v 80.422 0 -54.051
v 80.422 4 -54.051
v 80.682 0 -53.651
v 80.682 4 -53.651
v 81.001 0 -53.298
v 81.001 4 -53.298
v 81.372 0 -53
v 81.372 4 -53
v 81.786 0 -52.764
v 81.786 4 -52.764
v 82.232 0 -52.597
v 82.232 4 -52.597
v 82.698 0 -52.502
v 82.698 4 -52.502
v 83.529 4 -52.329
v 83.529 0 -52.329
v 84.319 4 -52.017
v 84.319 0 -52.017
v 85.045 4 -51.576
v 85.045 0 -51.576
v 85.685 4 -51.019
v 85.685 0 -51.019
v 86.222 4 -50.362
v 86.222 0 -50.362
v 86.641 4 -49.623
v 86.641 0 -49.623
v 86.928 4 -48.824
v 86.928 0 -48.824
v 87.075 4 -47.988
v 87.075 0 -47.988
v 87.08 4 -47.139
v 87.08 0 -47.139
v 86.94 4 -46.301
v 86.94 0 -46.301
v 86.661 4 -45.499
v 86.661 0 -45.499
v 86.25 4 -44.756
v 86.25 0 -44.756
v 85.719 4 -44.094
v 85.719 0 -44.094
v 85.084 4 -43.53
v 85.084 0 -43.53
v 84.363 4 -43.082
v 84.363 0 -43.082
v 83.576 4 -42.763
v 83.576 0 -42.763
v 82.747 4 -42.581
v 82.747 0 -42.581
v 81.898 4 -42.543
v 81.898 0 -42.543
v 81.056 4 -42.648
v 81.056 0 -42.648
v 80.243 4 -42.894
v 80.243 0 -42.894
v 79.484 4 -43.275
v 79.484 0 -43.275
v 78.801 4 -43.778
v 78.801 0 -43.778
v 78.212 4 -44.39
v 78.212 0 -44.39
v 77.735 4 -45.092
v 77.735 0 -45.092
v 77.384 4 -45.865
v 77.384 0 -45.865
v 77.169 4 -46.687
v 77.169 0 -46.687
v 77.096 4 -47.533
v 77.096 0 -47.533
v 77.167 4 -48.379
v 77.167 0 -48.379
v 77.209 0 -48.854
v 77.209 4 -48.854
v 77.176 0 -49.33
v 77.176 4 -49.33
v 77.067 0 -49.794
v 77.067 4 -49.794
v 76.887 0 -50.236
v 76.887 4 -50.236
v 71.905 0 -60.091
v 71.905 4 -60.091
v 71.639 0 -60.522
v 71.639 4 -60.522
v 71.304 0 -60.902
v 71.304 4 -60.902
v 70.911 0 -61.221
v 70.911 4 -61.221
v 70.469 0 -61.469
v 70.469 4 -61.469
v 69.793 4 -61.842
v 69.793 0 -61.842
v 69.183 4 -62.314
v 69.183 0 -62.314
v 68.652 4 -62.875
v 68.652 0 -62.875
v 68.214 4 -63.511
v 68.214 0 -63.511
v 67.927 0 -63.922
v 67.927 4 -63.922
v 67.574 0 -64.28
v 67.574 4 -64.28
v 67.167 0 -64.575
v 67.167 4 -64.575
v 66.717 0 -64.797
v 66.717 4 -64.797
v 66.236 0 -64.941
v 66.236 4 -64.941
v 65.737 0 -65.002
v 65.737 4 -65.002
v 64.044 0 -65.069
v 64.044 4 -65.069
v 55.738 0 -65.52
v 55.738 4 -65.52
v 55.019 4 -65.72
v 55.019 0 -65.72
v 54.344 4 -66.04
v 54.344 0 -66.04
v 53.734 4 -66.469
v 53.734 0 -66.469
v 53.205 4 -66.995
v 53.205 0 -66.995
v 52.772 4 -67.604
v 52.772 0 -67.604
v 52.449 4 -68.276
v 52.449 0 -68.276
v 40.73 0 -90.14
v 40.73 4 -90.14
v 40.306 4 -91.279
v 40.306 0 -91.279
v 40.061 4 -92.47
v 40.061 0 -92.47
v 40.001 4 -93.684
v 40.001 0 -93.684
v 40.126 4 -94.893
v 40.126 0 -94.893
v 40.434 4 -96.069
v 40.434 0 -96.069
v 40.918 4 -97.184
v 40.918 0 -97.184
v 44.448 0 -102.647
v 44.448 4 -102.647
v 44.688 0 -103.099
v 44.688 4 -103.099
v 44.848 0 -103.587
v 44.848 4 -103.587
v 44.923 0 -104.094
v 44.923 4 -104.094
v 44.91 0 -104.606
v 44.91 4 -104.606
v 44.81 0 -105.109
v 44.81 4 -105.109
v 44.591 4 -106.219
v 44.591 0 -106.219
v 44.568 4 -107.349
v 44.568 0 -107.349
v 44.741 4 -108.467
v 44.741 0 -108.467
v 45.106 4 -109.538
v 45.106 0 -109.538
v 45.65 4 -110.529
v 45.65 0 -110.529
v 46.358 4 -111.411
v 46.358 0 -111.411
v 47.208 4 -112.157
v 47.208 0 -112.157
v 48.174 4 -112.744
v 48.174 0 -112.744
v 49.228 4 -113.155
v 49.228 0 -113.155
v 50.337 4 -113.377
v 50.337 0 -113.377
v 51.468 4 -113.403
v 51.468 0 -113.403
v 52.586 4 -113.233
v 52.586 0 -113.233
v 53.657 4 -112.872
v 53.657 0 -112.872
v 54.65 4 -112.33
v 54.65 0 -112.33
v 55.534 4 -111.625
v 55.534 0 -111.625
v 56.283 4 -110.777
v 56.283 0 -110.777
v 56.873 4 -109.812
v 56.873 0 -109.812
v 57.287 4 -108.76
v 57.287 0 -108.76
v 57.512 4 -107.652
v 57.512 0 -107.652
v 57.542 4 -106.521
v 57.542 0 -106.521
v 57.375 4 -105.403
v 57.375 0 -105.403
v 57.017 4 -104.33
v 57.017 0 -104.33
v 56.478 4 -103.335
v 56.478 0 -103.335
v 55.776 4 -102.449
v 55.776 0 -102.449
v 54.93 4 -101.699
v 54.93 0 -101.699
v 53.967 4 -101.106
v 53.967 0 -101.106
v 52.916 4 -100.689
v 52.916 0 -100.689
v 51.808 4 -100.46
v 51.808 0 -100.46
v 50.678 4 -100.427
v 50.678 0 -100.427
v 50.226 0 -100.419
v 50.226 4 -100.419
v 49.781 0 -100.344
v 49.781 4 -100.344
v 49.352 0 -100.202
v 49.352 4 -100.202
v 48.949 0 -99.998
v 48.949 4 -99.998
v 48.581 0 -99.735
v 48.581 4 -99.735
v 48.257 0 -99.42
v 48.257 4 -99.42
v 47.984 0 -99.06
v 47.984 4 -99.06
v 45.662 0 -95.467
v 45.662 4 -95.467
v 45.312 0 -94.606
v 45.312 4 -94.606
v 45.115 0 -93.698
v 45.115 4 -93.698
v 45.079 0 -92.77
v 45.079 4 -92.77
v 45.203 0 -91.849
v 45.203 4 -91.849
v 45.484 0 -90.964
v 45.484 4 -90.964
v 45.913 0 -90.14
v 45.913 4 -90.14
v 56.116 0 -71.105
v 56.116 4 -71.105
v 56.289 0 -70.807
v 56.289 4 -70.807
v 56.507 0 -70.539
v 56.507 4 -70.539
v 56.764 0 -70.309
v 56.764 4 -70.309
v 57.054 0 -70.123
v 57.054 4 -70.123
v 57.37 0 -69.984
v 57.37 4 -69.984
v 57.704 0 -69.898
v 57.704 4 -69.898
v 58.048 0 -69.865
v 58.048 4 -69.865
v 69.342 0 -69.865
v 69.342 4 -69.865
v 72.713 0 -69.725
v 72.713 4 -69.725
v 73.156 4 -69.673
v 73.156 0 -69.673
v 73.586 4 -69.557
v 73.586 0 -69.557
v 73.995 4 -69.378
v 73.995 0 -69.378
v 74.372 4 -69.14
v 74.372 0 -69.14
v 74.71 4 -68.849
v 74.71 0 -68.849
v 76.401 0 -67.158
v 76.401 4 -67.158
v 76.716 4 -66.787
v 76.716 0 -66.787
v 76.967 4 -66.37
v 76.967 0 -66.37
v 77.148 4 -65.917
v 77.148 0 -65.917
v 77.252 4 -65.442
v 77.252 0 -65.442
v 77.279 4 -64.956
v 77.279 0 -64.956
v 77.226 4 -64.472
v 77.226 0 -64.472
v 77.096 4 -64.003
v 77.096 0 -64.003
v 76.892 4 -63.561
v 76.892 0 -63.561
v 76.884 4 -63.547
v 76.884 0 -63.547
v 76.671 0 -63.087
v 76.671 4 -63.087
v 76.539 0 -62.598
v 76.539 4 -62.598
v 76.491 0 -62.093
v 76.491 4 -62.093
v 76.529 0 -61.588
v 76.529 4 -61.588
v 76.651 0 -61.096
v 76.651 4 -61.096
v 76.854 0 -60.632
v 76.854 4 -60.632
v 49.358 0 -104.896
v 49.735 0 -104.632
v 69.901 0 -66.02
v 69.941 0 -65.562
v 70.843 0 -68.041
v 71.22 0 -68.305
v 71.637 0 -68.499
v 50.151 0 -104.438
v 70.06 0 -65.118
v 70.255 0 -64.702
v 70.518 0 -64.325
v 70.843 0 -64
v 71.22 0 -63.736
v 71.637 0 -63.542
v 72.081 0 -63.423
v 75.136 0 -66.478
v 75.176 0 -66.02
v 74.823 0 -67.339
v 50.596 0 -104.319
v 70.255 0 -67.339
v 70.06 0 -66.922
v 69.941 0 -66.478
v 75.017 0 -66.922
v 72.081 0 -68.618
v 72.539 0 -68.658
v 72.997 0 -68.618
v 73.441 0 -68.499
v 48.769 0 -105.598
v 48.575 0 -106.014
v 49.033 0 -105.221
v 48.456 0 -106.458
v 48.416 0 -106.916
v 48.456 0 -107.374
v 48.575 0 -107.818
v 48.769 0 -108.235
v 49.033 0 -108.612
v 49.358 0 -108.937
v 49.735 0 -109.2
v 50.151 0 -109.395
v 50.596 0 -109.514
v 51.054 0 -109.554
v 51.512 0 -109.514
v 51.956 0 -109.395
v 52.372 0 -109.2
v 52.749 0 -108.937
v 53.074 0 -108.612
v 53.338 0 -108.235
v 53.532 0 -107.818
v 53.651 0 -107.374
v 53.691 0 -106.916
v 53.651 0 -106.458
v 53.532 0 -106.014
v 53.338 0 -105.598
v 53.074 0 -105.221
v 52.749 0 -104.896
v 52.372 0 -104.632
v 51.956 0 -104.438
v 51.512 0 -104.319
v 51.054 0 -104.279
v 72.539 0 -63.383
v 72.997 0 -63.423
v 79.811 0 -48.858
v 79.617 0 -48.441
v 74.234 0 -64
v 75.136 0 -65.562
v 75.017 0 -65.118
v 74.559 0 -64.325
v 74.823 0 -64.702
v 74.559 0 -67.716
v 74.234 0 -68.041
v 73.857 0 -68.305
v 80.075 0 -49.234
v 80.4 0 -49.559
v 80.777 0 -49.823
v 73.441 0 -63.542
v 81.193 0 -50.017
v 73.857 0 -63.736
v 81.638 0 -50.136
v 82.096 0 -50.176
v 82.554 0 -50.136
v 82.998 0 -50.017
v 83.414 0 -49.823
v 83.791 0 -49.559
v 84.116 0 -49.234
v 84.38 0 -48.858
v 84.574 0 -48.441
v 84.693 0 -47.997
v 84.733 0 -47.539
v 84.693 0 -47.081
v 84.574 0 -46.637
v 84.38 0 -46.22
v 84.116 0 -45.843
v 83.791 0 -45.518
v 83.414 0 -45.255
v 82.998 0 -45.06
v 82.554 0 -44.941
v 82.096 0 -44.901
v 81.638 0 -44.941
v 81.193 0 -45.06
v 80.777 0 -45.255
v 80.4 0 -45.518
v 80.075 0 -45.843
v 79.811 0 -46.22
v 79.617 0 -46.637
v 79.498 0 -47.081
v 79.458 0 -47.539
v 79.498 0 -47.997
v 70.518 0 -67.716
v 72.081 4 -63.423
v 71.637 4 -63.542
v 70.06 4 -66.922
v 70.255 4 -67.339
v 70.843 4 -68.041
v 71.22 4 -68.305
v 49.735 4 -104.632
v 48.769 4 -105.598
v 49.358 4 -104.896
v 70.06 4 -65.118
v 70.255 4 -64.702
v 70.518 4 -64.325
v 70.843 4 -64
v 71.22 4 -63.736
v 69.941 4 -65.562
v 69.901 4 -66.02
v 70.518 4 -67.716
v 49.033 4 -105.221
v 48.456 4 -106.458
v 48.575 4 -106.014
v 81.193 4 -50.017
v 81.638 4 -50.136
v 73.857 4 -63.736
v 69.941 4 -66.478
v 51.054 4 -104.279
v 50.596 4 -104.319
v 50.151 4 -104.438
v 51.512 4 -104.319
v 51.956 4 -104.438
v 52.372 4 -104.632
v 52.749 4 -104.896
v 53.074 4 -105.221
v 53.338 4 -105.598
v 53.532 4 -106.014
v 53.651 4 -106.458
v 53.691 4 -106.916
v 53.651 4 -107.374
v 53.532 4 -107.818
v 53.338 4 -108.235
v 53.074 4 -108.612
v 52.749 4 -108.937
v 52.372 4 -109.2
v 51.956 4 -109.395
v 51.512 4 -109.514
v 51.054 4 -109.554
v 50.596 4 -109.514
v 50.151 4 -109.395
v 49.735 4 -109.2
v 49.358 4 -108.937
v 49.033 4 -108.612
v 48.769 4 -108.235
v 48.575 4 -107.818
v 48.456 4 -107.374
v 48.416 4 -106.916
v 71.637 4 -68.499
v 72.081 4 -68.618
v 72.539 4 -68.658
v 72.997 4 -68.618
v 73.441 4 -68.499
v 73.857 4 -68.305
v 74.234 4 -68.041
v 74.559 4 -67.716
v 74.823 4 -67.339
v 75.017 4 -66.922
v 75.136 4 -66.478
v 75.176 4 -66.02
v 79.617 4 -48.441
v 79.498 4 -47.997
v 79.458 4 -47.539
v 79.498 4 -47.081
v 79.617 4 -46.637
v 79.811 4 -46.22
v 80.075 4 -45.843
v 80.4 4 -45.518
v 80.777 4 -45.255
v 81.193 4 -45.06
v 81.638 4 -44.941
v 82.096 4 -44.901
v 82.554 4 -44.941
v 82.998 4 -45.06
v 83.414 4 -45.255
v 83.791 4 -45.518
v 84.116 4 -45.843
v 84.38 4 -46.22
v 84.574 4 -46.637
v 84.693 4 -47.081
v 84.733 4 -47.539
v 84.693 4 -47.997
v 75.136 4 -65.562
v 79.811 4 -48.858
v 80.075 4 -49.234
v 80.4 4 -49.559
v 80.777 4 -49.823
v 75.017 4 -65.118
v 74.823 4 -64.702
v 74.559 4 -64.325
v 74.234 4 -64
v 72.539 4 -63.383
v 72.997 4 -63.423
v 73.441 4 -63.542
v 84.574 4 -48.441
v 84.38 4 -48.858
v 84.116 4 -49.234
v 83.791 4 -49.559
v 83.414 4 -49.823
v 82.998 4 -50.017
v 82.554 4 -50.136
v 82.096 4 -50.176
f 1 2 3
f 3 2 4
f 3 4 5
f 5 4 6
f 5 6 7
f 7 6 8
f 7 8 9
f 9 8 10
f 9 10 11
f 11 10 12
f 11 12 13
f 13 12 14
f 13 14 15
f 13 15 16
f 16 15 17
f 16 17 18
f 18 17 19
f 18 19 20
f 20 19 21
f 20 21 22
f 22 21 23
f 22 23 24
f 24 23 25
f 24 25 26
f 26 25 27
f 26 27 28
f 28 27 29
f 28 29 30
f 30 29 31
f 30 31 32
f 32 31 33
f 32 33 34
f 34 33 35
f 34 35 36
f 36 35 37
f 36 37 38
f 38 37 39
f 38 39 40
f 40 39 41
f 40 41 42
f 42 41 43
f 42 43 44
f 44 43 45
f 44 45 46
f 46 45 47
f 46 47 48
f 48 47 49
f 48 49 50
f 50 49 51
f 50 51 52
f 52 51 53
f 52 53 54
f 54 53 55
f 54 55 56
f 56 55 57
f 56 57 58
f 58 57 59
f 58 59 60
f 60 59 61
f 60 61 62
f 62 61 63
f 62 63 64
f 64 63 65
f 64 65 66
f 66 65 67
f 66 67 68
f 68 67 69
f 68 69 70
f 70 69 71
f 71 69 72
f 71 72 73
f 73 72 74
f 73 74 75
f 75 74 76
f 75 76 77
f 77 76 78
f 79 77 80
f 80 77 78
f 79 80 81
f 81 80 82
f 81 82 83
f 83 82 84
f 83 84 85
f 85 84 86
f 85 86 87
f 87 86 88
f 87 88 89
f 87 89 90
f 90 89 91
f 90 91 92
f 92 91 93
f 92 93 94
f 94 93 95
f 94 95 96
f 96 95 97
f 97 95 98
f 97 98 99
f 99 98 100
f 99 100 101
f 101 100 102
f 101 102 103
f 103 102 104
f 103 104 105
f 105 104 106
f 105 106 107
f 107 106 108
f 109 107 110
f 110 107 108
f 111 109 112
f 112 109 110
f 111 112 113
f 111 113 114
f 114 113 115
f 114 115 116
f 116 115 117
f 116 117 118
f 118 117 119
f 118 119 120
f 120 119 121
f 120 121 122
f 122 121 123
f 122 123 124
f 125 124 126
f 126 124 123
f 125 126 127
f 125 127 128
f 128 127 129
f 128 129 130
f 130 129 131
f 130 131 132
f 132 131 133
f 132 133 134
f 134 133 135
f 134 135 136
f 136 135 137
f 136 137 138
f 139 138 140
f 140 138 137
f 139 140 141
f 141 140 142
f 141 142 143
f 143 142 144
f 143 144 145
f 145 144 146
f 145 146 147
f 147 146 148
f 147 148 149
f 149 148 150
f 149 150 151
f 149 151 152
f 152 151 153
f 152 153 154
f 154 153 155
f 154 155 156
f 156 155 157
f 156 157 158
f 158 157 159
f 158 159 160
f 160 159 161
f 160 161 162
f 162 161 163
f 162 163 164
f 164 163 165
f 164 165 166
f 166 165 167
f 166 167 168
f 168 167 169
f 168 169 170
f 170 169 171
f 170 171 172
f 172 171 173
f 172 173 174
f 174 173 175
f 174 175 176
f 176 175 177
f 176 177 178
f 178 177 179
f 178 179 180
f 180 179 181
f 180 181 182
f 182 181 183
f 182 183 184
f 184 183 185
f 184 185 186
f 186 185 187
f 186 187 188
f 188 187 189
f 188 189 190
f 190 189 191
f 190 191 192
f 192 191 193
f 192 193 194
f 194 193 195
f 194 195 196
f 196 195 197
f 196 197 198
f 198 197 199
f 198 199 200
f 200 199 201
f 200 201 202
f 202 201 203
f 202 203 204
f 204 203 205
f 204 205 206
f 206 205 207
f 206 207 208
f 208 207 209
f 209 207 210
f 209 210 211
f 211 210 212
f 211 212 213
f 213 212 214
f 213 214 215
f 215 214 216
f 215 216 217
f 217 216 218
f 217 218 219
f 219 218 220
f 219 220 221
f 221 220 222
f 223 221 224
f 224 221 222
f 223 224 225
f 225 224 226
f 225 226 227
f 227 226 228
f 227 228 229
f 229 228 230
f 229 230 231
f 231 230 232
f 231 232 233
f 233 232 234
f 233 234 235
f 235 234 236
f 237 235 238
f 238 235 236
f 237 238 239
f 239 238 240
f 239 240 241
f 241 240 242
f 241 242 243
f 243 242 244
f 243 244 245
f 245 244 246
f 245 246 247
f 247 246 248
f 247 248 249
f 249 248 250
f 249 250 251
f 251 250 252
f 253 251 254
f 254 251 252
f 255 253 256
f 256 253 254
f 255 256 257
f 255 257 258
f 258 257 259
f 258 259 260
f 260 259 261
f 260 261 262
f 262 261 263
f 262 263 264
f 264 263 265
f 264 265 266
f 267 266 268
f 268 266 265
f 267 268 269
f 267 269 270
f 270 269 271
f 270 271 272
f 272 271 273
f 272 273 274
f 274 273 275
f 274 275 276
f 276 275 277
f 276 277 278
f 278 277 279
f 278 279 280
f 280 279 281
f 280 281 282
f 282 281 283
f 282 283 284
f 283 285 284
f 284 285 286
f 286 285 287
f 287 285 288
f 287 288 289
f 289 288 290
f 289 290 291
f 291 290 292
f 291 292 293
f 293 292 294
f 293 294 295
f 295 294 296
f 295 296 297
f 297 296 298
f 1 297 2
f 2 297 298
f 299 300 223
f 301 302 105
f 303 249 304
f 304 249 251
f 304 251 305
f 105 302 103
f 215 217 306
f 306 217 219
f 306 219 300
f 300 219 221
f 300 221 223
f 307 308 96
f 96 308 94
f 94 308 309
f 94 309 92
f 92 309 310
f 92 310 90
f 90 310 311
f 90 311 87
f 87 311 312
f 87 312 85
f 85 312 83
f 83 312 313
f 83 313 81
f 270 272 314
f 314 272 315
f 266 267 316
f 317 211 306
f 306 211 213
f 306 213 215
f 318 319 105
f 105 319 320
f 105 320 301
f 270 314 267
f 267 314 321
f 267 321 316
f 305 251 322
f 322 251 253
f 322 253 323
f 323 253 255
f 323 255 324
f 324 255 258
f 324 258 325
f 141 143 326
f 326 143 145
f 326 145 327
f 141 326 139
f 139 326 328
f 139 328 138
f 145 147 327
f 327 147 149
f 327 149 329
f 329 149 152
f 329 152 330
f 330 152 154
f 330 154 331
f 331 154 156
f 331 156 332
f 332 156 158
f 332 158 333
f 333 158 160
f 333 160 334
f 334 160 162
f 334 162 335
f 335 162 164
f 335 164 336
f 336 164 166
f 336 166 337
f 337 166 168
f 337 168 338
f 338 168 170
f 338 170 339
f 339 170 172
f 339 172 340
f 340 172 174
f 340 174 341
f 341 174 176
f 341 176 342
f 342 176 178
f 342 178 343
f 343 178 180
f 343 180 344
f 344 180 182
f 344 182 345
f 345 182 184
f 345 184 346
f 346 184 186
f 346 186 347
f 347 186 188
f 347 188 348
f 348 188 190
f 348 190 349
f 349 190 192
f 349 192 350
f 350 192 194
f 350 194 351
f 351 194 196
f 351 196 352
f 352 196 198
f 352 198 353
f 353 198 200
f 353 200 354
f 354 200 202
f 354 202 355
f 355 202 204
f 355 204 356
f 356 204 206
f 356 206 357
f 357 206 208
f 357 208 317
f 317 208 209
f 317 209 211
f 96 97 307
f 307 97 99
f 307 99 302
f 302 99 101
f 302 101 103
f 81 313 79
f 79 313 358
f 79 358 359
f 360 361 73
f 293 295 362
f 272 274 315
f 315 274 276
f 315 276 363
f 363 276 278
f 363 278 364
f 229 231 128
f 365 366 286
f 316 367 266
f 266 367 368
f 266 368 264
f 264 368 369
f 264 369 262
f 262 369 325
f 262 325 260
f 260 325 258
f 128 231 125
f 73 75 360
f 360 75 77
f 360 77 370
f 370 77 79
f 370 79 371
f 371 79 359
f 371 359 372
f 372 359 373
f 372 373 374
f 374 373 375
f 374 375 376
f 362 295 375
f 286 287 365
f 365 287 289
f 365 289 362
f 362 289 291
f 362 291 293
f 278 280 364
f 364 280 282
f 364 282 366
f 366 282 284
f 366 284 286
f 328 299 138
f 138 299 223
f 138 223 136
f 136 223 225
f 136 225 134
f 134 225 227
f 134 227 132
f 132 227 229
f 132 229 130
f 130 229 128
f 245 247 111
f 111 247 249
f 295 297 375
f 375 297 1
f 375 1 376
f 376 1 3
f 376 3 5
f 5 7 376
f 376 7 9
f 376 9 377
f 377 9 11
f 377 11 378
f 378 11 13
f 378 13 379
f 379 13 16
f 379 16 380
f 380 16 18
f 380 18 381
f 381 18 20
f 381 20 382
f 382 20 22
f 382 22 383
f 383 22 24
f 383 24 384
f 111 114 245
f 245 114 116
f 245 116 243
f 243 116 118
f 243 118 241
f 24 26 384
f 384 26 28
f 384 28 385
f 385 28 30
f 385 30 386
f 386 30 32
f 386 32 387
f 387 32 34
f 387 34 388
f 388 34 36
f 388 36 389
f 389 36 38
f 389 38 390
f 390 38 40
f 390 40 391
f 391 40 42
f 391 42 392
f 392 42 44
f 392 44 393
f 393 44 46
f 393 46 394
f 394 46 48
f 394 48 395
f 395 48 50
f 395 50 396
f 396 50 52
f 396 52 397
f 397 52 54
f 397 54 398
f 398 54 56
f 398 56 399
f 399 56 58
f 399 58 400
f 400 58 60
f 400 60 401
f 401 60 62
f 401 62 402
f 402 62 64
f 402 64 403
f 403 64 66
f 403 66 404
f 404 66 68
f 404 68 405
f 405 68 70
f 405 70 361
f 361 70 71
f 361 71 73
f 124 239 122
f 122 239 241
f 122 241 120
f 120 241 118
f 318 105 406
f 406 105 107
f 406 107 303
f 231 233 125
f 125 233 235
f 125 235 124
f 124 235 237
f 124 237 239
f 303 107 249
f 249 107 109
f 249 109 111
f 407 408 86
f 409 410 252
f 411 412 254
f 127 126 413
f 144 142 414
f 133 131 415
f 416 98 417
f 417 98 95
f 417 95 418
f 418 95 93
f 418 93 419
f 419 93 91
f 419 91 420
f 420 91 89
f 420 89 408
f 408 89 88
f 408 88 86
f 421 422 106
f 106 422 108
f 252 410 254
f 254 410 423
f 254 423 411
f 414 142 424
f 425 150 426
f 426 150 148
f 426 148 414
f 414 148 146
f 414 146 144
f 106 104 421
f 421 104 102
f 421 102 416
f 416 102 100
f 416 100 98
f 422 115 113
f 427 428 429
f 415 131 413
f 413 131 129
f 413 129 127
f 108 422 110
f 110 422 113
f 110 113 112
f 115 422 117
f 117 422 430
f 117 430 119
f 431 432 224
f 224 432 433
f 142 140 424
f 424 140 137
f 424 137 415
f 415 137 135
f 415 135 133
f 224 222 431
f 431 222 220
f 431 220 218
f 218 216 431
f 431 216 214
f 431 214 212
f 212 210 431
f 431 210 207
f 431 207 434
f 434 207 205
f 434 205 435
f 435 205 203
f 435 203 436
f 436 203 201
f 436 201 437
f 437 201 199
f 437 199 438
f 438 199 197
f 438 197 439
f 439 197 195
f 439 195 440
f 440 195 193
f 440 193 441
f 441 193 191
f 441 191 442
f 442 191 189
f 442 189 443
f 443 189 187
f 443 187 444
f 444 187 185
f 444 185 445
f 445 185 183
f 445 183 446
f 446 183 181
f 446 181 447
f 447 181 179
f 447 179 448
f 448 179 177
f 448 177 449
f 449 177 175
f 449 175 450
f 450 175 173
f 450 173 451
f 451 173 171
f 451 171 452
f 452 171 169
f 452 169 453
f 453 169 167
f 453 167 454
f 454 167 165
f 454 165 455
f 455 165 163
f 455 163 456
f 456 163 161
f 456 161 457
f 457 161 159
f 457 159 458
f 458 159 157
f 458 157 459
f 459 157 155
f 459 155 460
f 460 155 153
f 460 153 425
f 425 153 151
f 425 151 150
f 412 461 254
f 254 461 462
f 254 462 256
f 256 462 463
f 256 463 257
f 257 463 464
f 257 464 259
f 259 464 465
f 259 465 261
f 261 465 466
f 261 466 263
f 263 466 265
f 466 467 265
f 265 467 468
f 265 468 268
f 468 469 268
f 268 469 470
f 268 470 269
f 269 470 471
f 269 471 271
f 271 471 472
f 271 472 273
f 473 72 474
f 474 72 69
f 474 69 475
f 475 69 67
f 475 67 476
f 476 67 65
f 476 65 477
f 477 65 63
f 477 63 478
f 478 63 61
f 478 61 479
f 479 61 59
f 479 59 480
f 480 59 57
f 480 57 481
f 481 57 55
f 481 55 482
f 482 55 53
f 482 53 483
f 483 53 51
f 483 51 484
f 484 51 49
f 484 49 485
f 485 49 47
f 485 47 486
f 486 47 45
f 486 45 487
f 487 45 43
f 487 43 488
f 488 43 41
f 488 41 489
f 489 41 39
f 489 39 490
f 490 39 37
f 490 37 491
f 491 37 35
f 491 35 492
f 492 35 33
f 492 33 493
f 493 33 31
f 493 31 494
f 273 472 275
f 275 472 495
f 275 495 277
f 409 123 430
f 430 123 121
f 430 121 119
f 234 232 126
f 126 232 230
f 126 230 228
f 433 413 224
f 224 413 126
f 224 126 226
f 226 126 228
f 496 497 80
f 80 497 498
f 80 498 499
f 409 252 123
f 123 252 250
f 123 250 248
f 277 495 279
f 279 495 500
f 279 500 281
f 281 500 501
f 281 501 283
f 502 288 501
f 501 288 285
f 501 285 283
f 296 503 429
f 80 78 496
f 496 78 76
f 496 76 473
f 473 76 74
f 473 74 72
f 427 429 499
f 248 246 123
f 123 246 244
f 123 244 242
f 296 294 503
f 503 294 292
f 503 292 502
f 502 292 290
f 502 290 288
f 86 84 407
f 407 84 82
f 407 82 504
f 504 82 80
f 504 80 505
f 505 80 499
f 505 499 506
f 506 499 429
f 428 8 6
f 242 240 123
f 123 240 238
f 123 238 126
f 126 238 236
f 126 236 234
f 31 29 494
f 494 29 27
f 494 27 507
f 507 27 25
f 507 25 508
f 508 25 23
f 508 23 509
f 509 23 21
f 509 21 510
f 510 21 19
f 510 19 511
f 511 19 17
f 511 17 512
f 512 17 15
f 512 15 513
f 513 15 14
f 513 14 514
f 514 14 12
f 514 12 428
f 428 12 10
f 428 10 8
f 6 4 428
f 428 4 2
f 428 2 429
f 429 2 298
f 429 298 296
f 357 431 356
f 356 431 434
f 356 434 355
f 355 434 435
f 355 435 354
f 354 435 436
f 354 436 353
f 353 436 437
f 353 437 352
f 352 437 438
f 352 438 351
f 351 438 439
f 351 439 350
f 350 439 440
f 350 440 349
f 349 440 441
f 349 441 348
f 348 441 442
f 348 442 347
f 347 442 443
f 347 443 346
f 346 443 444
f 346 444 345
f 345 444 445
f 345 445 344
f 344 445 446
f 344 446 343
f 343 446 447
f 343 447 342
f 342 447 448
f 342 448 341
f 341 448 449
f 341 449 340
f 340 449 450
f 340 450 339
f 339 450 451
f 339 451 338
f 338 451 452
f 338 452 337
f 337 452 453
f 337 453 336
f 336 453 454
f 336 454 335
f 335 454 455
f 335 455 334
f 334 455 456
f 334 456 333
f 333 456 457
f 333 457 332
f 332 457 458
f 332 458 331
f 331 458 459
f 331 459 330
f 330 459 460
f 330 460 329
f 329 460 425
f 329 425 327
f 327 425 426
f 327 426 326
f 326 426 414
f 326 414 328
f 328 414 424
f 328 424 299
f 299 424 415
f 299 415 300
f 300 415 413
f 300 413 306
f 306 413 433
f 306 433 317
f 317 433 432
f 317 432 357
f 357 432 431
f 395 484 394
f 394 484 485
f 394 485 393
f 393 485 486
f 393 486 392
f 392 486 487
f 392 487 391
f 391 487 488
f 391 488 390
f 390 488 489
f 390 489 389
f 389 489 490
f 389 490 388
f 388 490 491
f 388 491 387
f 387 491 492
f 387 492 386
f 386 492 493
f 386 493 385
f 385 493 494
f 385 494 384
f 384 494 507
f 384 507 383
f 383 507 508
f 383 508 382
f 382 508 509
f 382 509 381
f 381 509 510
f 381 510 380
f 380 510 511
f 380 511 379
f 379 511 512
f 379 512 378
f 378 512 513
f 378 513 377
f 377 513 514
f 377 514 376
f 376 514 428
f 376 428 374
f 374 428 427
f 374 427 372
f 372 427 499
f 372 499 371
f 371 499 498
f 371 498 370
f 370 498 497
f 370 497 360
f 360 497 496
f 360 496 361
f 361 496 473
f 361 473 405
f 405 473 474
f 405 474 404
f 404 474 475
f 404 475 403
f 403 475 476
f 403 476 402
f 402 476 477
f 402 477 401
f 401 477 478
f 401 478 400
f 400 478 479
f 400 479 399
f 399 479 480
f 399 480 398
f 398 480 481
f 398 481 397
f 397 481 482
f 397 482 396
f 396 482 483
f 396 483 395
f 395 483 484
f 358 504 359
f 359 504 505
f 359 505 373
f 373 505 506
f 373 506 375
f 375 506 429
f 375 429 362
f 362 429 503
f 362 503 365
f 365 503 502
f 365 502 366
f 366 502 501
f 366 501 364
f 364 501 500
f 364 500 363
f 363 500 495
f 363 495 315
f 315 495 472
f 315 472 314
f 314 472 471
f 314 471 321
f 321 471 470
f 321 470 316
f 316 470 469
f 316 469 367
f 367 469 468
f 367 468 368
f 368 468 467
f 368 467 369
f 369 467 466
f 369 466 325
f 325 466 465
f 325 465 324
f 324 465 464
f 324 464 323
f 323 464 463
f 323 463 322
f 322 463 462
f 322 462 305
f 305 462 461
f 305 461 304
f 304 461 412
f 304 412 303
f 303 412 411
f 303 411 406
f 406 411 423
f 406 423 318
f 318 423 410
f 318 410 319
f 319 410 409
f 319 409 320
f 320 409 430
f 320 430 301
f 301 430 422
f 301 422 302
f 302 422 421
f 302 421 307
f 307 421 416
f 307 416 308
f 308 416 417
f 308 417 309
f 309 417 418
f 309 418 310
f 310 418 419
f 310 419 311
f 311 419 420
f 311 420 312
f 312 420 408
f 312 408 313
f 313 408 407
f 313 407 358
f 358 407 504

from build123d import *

# Parameters (mm, degrees)
SKETCH1_R           = 2.6375
BOSS_EXTRUDE1_DEPTH = 4


with BuildPart() as part:
    # Sketch1 → Boss-Extrude1 (new body)
    with BuildSketch(Plane(origin=(0, 4, 0), x_dir=(1, 0, 0), z_dir=(0, 1, 0))):
        with BuildLine():
            Line((80.422342857, 54.050517259), (76.853623233, 60.632336961))
            ThreePointArc((76.853623233, 60.632336961), (76.491061204, 62.093363418), (76.883808504, 63.546566463))
            ThreePointArc((76.883808504, 63.546566463), (76.887801931, 63.553594024), (76.891783993, 63.560628031))
            ThreePointArc((76.891783993, 63.560628031), (77.252393533, 65.441834253), (76.401227258, 67.157786484))
            Line((76.401227258, 67.157786484), (74.710106586, 68.848907157))
            ThreePointArc((74.710106586, 68.848907157), (73.793959033, 69.474868842), (72.712949954, 69.725016274))
            Line((72.712949954, 69.725016274), (69.341583584, 69.864669723))
            Line((69.341583584, 69.864669723), (58.04793187, 69.864669723))
            ThreePointArc((58.04793187, 69.864669723), (56.905384642, 70.210123831), (56.115987655, 71.105447853))
            Line((56.115987655, 71.105447853), (45.913475043, 90.139986308))
            ThreePointArc((45.913475043, 90.139986308), (45.078544808, 92.769966676), (45.661998303, 95.466907026))
            Line((45.661998303, 95.466907026), (47.984386737, 99.06049755))
            ThreePointArc((47.984386737, 99.06049755), (49.146460916, 100.107430356), (50.677561656, 100.427141511))
            ThreePointArc((50.677561656, 100.427141511), (55.107636105, 111.997063252), (44.809847991, 105.109087593))
            ThreePointArc((44.809847991, 105.109087593), (44.89620964, 103.838561027), (44.447757125, 102.646677462))
            Line((44.447757125, 102.646677462), (40.917682236, 97.184351056))
            ThreePointArc((40.917682236, 97.184351056), (40.000914232, 93.684113367), (40.729811239, 90.139986308))
            Line((40.729811239, 90.139986308), (52.448751423, 68.276291936))
            ThreePointArc((52.448751423, 68.276291936), (53.733769558, 66.46917356), (55.737555004, 65.519546097))
            Line((55.737555004, 65.519546097), (64.043852088, 65.068697747))
            Line((64.043852088, 65.068697747), (65.737001521, 65.002354827))
            ThreePointArc((65.737001521, 65.002354827), (67.167212394, 64.574619561), (68.214209712, 63.510543803))
            ThreePointArc((68.214209712, 63.510543803), (69.182612076, 62.314016036), (70.4690978, 61.468772687))
            ThreePointArc((70.4690978, 61.468772687), (71.304443417, 60.902477838), (71.904734595, 60.091217919))
            Line((71.904734595, 60.091217919), (76.886572185, 50.235843556))
            ThreePointArc((76.886572185, 50.235843556), (77.175676431, 49.329685255), (77.166582589, 48.378569367))
            ThreePointArc((77.166582589, 48.378569367), (85.084005766, 43.530139369), (82.698094563, 52.502334805))
            ThreePointArc((82.698094563, 52.502334805), (81.37218956, 53.000032473), (80.422342857, 54.050517259))
        make_face()
        with Locations((51.053576092, 106.916256485)):
            Circle(SKETCH1_R, mode=Mode.SUBTRACT)
        with Locations((82.095552315, 47.538773298)):
            Circle(SKETCH1_R, mode=Mode.SUBTRACT)
        with Locations((72.538655529, 66.020358214)):
            Circle(SKETCH1_R, mode=Mode.SUBTRACT)
    extrude(amount=-BOSS_EXTRUDE1_DEPTH)


solid = part.part
